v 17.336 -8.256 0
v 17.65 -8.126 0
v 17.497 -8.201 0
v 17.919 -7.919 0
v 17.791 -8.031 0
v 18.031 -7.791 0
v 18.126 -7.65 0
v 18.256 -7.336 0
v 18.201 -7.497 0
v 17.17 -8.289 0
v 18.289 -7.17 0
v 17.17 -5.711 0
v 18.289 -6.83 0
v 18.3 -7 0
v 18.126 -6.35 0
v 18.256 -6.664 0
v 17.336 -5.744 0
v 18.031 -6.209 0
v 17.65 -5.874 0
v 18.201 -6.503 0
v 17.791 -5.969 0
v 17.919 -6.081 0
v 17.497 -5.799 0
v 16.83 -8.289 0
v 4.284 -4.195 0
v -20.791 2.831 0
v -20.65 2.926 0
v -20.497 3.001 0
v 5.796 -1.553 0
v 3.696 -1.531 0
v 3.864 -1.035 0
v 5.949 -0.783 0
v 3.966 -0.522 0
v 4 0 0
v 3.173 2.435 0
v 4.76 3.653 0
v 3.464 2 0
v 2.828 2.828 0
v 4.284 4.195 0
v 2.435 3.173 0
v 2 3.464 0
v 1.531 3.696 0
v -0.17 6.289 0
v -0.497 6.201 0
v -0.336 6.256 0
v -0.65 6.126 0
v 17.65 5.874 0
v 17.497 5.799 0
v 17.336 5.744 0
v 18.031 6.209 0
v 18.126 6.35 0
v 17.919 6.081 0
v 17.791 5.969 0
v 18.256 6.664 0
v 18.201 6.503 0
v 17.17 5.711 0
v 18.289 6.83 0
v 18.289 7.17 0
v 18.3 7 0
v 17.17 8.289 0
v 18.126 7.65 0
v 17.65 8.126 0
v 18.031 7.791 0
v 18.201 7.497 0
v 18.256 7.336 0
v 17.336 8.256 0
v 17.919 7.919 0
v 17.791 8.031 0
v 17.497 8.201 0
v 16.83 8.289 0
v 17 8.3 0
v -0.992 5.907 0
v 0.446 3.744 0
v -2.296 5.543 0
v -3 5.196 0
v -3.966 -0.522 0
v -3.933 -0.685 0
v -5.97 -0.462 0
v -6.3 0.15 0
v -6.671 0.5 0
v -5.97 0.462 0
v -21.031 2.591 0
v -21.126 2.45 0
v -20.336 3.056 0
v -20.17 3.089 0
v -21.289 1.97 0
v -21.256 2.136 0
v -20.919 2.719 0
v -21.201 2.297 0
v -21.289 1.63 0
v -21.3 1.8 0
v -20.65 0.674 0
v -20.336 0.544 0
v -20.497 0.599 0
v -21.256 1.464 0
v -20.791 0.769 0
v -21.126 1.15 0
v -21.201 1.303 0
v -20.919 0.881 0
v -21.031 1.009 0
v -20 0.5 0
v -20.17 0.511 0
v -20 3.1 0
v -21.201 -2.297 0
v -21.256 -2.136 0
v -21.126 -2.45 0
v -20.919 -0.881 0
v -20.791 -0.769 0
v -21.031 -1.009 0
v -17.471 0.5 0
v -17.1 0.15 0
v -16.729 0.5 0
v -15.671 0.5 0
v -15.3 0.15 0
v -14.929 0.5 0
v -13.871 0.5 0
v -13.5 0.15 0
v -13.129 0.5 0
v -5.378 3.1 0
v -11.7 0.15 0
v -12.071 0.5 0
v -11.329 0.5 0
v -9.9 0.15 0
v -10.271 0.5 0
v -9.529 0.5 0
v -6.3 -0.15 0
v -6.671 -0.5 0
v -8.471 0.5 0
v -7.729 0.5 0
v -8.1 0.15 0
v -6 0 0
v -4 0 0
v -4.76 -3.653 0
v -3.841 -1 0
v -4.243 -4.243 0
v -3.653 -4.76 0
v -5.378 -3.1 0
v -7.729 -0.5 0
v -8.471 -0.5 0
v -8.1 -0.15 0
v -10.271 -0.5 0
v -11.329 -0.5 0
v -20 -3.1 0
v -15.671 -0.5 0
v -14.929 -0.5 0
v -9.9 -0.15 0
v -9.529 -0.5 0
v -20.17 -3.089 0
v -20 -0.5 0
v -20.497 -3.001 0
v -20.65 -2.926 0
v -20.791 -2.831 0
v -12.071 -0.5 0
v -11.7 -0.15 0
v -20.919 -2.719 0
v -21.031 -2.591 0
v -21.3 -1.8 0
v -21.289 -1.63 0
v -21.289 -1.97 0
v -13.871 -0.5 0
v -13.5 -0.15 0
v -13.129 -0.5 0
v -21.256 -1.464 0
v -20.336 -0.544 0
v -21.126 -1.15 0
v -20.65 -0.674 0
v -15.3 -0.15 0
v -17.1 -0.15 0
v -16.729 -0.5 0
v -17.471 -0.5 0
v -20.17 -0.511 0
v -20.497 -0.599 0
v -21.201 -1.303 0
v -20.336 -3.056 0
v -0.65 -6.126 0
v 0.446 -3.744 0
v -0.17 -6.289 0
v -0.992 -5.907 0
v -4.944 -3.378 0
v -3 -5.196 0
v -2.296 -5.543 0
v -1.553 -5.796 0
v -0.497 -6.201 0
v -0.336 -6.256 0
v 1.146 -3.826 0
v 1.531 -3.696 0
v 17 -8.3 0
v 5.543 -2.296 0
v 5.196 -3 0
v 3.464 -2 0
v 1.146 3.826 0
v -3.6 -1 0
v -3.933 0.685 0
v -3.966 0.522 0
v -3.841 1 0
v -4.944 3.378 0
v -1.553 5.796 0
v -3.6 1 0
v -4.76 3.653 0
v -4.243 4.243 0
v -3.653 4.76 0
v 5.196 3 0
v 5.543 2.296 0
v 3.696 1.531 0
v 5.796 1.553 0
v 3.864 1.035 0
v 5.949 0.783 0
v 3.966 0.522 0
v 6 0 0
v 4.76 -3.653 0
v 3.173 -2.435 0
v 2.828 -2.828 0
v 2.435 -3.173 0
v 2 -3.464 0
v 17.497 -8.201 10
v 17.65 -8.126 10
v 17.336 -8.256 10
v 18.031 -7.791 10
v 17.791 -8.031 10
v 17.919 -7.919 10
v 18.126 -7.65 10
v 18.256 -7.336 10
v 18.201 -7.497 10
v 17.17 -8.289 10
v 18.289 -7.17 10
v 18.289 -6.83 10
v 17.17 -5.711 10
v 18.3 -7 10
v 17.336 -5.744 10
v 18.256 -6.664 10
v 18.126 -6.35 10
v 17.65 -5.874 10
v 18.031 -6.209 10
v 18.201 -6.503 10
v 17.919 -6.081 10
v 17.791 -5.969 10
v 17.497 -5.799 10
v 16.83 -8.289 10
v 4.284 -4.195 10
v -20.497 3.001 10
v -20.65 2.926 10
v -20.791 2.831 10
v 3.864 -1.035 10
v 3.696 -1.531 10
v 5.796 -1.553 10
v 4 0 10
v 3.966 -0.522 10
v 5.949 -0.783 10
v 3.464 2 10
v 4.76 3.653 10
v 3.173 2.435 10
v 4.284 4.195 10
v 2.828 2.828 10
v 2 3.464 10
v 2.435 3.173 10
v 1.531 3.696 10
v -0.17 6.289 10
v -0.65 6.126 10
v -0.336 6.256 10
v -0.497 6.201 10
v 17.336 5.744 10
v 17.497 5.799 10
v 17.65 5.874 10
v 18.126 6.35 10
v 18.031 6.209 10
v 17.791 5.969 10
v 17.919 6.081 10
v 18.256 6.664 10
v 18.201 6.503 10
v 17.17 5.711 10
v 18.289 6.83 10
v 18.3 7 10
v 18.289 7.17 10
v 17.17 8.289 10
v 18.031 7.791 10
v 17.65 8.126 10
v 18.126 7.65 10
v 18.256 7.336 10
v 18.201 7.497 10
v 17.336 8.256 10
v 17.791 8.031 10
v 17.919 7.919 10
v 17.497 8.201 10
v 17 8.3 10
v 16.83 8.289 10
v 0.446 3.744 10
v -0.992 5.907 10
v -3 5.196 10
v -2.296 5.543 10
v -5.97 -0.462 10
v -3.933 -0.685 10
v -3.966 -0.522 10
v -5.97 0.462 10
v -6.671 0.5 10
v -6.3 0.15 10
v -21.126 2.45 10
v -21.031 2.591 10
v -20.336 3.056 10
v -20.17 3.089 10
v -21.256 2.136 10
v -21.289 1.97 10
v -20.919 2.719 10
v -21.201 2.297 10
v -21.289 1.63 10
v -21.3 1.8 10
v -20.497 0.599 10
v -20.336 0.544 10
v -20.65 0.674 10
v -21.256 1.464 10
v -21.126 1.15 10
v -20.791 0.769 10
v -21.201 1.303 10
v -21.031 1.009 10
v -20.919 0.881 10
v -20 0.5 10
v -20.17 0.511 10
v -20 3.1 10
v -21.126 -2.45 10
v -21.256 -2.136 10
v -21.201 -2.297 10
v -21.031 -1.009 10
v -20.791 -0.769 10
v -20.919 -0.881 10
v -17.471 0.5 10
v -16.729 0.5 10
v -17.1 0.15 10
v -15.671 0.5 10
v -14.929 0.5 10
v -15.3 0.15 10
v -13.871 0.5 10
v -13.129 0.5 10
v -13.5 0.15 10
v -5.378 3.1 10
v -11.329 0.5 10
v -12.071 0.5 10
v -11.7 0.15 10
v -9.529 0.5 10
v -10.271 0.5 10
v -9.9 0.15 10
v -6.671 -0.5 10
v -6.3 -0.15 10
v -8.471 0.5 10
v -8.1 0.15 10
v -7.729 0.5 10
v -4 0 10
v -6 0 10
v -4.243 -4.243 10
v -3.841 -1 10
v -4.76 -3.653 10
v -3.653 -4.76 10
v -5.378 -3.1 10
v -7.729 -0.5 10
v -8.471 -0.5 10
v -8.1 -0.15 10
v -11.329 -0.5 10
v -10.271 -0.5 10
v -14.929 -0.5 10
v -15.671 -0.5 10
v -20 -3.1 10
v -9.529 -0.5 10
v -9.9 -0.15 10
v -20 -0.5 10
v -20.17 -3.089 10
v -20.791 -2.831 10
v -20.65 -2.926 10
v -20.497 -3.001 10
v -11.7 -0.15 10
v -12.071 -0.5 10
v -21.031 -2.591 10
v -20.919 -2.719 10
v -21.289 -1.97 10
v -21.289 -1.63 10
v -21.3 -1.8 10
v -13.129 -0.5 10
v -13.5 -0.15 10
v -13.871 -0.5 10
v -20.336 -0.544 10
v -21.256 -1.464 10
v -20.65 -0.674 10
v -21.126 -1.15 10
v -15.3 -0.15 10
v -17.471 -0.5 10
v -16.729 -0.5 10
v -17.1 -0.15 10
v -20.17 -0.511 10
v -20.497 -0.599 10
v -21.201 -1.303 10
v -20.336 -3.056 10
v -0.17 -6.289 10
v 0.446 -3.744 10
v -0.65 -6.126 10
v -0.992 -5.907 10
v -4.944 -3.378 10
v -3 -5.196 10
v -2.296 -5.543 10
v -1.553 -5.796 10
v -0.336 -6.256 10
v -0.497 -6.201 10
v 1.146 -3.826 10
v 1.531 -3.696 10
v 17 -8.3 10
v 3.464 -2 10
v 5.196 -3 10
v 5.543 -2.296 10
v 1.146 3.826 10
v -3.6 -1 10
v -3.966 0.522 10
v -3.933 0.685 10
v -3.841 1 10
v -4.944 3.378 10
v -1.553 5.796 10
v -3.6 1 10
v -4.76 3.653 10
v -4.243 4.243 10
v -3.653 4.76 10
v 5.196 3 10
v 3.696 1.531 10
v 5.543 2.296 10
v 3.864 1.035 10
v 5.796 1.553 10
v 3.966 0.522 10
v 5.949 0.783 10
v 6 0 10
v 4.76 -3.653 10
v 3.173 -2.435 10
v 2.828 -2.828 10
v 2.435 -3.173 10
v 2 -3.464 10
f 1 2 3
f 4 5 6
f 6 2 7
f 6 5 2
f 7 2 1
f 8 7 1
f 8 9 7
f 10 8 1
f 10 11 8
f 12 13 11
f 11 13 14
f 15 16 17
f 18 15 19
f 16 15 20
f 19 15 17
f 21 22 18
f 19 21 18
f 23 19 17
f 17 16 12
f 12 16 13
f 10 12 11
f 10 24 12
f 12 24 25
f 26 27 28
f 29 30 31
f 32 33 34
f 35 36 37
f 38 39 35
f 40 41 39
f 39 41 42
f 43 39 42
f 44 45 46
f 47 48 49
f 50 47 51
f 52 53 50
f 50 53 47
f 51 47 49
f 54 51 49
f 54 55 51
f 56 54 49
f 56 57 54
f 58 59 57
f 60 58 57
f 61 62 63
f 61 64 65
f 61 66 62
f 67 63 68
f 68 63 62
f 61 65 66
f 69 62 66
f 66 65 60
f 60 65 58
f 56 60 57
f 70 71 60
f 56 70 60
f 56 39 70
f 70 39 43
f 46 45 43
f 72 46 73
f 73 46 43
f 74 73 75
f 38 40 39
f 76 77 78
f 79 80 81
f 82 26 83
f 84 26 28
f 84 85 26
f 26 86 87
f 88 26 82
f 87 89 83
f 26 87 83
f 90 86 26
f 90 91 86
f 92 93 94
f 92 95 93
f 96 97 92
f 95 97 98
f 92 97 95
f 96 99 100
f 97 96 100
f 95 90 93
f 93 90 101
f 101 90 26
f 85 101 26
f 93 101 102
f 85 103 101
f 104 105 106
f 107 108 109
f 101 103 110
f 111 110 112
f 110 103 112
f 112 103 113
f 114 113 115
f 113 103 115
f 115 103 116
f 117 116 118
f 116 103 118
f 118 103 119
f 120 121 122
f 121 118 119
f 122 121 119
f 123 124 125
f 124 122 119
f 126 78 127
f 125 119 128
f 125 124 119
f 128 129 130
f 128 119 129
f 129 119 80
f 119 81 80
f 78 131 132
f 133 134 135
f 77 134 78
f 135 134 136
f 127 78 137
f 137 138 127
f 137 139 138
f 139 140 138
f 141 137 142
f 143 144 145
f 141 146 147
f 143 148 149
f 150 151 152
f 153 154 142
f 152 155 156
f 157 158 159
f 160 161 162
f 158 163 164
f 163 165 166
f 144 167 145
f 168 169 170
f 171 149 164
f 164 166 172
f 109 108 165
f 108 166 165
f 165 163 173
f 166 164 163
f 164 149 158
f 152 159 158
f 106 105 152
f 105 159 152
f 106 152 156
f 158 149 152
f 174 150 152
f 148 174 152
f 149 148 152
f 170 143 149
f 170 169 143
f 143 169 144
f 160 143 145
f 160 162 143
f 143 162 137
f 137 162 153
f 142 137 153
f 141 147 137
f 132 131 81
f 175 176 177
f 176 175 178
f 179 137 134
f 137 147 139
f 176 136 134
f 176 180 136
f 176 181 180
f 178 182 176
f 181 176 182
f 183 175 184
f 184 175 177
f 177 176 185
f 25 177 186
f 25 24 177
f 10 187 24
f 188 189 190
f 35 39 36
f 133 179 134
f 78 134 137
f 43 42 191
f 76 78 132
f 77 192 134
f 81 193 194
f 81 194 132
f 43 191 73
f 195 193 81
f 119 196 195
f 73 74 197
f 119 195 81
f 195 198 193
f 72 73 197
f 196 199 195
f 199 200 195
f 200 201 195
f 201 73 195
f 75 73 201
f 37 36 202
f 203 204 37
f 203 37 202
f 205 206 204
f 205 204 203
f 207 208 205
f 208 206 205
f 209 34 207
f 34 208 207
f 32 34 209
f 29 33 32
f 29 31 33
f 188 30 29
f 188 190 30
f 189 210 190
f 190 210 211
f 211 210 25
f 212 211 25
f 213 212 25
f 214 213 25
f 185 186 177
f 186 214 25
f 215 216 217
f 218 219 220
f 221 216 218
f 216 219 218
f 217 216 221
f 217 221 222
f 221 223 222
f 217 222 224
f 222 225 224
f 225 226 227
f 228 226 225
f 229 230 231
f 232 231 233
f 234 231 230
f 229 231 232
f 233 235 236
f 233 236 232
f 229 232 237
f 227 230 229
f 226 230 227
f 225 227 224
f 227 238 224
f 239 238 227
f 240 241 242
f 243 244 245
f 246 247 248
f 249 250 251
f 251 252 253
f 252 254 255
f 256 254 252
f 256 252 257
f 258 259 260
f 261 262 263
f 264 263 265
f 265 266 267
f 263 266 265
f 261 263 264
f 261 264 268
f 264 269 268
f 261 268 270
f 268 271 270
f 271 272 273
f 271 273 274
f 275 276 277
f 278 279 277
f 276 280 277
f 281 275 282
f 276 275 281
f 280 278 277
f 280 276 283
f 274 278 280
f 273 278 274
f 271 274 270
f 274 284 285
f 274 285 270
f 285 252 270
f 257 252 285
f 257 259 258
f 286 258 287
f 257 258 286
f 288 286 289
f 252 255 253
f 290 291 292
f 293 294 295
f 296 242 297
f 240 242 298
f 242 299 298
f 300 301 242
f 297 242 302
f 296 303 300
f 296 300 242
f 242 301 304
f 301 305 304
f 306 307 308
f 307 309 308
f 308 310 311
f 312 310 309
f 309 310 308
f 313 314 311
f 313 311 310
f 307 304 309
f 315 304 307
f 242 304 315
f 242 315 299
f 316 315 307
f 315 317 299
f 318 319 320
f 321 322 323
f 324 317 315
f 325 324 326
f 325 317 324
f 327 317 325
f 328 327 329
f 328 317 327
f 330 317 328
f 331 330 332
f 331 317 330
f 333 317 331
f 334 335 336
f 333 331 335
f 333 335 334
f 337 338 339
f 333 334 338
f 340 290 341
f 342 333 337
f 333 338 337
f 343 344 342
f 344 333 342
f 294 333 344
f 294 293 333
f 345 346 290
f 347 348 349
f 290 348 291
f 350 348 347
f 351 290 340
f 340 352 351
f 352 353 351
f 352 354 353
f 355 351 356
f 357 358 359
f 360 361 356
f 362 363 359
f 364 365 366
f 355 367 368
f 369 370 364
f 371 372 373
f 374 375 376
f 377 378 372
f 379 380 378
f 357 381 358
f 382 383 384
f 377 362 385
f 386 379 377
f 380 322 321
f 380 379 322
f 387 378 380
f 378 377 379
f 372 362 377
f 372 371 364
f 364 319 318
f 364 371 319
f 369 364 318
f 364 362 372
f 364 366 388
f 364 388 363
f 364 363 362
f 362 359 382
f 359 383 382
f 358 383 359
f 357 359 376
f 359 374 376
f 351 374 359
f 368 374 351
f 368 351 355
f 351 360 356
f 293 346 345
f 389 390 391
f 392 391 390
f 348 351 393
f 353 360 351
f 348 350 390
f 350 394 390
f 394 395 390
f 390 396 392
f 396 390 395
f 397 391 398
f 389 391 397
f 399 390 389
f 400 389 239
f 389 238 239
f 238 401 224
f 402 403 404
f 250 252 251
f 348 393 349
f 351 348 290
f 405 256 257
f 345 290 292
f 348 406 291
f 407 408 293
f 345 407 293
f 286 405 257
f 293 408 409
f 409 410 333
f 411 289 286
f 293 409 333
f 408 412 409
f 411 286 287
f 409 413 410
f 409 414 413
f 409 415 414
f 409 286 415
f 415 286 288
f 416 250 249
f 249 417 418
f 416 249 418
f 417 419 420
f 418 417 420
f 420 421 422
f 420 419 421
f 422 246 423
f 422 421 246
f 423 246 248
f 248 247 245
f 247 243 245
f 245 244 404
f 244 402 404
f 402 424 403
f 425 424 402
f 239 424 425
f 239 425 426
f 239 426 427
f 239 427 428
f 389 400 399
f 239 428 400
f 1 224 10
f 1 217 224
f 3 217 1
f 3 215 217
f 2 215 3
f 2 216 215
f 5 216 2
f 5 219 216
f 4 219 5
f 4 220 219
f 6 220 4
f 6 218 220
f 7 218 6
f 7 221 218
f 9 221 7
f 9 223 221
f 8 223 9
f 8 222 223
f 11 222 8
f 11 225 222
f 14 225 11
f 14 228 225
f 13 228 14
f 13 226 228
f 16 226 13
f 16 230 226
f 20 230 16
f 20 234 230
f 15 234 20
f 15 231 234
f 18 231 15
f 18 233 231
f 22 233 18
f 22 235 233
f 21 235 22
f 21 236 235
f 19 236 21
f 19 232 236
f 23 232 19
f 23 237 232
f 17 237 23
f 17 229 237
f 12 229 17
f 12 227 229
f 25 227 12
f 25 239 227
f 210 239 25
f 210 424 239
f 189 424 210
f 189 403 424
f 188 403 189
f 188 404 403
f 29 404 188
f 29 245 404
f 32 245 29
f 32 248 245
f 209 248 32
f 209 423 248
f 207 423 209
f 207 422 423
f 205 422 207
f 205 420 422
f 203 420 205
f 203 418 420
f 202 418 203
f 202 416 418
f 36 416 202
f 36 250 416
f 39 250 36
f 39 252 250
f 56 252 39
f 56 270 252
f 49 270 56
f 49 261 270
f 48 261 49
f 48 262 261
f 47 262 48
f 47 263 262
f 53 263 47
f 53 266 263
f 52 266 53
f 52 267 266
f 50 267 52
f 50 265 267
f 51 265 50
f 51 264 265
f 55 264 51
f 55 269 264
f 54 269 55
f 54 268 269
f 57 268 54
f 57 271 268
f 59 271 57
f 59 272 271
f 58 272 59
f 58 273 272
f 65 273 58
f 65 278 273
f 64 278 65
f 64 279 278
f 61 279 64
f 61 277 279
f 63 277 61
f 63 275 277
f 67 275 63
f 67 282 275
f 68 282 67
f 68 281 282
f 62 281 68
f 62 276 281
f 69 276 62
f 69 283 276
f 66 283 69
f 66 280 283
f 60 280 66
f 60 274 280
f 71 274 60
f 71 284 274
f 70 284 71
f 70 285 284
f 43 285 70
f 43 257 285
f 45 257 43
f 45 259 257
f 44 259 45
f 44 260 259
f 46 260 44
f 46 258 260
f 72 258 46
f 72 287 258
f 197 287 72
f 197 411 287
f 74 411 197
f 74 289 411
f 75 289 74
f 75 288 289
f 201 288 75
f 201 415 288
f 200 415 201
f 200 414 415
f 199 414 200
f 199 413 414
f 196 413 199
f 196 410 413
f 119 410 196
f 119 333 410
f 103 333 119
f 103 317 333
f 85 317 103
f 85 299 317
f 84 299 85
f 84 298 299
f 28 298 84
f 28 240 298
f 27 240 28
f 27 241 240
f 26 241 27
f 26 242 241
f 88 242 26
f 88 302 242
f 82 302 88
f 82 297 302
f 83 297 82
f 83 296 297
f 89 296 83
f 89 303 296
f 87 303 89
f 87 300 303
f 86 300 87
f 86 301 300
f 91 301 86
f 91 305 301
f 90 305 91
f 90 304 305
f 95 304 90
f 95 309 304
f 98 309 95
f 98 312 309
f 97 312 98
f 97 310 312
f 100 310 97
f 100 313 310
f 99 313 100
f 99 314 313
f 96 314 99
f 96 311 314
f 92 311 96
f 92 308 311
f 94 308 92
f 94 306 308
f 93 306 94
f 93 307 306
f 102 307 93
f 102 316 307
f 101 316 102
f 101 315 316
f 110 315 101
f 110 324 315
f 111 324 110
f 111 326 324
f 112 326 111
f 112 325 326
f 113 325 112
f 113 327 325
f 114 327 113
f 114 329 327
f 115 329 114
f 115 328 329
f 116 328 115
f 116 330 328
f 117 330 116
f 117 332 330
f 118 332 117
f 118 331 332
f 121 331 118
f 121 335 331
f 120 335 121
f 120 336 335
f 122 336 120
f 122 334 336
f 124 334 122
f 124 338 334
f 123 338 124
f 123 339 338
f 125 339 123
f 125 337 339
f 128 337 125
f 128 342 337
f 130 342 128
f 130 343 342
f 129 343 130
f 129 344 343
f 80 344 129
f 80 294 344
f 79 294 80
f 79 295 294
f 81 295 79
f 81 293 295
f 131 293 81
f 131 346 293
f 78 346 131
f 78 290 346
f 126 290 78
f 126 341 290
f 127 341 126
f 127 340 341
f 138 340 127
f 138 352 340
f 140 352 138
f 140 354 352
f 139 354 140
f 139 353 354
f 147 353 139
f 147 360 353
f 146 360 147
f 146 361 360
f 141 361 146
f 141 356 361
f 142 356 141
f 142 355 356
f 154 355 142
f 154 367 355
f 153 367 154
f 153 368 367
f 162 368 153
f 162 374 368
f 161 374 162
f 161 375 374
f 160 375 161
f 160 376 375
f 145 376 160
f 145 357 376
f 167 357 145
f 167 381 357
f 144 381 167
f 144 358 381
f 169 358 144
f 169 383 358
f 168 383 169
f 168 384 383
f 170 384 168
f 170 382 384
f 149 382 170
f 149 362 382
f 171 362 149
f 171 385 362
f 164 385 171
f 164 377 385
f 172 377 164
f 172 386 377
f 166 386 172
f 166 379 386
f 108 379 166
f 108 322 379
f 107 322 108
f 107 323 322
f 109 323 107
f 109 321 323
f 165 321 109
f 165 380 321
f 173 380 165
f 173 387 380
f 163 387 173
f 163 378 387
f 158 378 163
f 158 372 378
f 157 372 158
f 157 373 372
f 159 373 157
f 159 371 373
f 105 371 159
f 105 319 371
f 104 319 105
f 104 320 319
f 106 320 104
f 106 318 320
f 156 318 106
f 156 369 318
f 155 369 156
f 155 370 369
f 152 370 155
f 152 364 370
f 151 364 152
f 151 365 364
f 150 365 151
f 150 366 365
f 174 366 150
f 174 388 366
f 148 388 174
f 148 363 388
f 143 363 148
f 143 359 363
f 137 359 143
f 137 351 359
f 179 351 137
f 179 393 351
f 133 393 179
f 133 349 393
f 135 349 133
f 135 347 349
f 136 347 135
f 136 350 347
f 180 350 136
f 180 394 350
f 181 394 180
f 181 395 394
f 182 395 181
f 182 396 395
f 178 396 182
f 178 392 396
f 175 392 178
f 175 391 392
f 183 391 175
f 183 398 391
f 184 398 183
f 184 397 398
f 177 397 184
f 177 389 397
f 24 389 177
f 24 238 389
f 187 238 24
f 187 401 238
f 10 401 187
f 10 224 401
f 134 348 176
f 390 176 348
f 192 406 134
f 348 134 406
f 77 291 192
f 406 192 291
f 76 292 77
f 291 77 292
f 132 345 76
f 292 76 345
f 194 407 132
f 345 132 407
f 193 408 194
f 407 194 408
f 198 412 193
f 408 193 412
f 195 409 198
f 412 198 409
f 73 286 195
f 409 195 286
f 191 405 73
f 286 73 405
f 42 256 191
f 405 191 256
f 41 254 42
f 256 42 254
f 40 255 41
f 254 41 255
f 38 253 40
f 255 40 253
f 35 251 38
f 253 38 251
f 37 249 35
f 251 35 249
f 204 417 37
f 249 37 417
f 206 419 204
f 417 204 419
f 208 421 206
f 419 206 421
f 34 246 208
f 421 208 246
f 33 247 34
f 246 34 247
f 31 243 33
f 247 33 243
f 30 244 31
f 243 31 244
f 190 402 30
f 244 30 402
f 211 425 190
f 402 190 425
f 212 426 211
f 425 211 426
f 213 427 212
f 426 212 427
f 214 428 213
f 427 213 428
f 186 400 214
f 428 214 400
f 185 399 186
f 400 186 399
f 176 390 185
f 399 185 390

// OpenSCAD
// bagclip_tongs — single-piece tongs/clothespin bag clip, copied from the
// reference bagclipstronger.stl / bag-clip-final.stl.
//
// HOW IT WORKS: the serrated JAWS (left) sit nearly CLOSED at rest and clamp the
// bag. The round LOOP (middle) is a compliant spring-pivot (a big radius keeps the
// strain low so it survives in PLA). The forked HANDLES (right) are levers — pinch
// them together and the jaws cantilever OPEN; release and the loop snaps them shut.
//
// Flat profile extruded along Z (bite depth). Prints flat, support-free; the loop
// flexes in-plane along the layers.

/* [Size] */
bite       = 10;    // Z depth (along the bag edge)
arm_t      = 2.6;   // arm/ribbon thickness

/* [Jaws] */
jaw_len    = 20;    // jaw length (left)
jaw_gap    = 1.0;   // gap between the closed jaw faces (small -> grips)
jaw_flat   = 5;     // x where the jaw stops being parallel and rises to the loop

/* [Spring loop] */
loop_r     = 5;     // loop radius (bigger = softer spring, lower strain)
loop_wall  = 2.0;   // loop wall thickness (the flexure)

/* [Handles] */
handle_len   = 17;  // handle length (right)
handle_spread= 7;   // half-distance between the handle tips (pinch leverage)

/* [Teeth] */
tooth_d = 0.35;     // tooth bite toward the other jaw
tooth_p = 1.8;      // tooth pitch

$fn = 48;

jc = (arm_t + jaw_gap) / 2;   // jaw centerline offset from the middle

module ribbon(p, t) {
  for (i = [0 : len(p)-2])
    hull() { translate(p[i]) circle(d=t); translate(p[i+1]) circle(d=t); }
}

// one arm: parallel jaw (left) -> up to the loop -> out to the handle (right)
function arm_pts(s) = [   // s = +1 top, -1 bottom
  [-jaw_len, s*jc], [-jaw_flat, s*jc], [0, s*loop_r], [handle_len, s*handle_spread]
];

// sawtooth on a jaw inner face at y=fy, biting toward dir. The base is sunk
// 0.5mm INTO the arm so the union is clean (no coincident edge -> watertight).
module teeth(fy, dir) {
  for (x = [-jaw_len + 2 : tooth_p : -jaw_flat])
    polygon([[x, fy - dir*0.5], [x + tooth_p/2, fy + dir*tooth_d], [x + tooth_p, fy - dir*0.5]]);
}

module clip2d() {
  union() {
    ribbon(arm_pts(+1), arm_t);
    ribbon(arm_pts(-1), arm_t);
    difference() { circle(r = loop_r + loop_wall/2); circle(r = loop_r - loop_wall/2); }
    teeth( jc - arm_t/2, -1);   // top jaw inner (bottom) face, teeth point down
    teeth(-jc + arm_t/2, +1);   // bottom jaw inner (top) face, teeth point up
  }
}

linear_extrude(bite) clip2d();
